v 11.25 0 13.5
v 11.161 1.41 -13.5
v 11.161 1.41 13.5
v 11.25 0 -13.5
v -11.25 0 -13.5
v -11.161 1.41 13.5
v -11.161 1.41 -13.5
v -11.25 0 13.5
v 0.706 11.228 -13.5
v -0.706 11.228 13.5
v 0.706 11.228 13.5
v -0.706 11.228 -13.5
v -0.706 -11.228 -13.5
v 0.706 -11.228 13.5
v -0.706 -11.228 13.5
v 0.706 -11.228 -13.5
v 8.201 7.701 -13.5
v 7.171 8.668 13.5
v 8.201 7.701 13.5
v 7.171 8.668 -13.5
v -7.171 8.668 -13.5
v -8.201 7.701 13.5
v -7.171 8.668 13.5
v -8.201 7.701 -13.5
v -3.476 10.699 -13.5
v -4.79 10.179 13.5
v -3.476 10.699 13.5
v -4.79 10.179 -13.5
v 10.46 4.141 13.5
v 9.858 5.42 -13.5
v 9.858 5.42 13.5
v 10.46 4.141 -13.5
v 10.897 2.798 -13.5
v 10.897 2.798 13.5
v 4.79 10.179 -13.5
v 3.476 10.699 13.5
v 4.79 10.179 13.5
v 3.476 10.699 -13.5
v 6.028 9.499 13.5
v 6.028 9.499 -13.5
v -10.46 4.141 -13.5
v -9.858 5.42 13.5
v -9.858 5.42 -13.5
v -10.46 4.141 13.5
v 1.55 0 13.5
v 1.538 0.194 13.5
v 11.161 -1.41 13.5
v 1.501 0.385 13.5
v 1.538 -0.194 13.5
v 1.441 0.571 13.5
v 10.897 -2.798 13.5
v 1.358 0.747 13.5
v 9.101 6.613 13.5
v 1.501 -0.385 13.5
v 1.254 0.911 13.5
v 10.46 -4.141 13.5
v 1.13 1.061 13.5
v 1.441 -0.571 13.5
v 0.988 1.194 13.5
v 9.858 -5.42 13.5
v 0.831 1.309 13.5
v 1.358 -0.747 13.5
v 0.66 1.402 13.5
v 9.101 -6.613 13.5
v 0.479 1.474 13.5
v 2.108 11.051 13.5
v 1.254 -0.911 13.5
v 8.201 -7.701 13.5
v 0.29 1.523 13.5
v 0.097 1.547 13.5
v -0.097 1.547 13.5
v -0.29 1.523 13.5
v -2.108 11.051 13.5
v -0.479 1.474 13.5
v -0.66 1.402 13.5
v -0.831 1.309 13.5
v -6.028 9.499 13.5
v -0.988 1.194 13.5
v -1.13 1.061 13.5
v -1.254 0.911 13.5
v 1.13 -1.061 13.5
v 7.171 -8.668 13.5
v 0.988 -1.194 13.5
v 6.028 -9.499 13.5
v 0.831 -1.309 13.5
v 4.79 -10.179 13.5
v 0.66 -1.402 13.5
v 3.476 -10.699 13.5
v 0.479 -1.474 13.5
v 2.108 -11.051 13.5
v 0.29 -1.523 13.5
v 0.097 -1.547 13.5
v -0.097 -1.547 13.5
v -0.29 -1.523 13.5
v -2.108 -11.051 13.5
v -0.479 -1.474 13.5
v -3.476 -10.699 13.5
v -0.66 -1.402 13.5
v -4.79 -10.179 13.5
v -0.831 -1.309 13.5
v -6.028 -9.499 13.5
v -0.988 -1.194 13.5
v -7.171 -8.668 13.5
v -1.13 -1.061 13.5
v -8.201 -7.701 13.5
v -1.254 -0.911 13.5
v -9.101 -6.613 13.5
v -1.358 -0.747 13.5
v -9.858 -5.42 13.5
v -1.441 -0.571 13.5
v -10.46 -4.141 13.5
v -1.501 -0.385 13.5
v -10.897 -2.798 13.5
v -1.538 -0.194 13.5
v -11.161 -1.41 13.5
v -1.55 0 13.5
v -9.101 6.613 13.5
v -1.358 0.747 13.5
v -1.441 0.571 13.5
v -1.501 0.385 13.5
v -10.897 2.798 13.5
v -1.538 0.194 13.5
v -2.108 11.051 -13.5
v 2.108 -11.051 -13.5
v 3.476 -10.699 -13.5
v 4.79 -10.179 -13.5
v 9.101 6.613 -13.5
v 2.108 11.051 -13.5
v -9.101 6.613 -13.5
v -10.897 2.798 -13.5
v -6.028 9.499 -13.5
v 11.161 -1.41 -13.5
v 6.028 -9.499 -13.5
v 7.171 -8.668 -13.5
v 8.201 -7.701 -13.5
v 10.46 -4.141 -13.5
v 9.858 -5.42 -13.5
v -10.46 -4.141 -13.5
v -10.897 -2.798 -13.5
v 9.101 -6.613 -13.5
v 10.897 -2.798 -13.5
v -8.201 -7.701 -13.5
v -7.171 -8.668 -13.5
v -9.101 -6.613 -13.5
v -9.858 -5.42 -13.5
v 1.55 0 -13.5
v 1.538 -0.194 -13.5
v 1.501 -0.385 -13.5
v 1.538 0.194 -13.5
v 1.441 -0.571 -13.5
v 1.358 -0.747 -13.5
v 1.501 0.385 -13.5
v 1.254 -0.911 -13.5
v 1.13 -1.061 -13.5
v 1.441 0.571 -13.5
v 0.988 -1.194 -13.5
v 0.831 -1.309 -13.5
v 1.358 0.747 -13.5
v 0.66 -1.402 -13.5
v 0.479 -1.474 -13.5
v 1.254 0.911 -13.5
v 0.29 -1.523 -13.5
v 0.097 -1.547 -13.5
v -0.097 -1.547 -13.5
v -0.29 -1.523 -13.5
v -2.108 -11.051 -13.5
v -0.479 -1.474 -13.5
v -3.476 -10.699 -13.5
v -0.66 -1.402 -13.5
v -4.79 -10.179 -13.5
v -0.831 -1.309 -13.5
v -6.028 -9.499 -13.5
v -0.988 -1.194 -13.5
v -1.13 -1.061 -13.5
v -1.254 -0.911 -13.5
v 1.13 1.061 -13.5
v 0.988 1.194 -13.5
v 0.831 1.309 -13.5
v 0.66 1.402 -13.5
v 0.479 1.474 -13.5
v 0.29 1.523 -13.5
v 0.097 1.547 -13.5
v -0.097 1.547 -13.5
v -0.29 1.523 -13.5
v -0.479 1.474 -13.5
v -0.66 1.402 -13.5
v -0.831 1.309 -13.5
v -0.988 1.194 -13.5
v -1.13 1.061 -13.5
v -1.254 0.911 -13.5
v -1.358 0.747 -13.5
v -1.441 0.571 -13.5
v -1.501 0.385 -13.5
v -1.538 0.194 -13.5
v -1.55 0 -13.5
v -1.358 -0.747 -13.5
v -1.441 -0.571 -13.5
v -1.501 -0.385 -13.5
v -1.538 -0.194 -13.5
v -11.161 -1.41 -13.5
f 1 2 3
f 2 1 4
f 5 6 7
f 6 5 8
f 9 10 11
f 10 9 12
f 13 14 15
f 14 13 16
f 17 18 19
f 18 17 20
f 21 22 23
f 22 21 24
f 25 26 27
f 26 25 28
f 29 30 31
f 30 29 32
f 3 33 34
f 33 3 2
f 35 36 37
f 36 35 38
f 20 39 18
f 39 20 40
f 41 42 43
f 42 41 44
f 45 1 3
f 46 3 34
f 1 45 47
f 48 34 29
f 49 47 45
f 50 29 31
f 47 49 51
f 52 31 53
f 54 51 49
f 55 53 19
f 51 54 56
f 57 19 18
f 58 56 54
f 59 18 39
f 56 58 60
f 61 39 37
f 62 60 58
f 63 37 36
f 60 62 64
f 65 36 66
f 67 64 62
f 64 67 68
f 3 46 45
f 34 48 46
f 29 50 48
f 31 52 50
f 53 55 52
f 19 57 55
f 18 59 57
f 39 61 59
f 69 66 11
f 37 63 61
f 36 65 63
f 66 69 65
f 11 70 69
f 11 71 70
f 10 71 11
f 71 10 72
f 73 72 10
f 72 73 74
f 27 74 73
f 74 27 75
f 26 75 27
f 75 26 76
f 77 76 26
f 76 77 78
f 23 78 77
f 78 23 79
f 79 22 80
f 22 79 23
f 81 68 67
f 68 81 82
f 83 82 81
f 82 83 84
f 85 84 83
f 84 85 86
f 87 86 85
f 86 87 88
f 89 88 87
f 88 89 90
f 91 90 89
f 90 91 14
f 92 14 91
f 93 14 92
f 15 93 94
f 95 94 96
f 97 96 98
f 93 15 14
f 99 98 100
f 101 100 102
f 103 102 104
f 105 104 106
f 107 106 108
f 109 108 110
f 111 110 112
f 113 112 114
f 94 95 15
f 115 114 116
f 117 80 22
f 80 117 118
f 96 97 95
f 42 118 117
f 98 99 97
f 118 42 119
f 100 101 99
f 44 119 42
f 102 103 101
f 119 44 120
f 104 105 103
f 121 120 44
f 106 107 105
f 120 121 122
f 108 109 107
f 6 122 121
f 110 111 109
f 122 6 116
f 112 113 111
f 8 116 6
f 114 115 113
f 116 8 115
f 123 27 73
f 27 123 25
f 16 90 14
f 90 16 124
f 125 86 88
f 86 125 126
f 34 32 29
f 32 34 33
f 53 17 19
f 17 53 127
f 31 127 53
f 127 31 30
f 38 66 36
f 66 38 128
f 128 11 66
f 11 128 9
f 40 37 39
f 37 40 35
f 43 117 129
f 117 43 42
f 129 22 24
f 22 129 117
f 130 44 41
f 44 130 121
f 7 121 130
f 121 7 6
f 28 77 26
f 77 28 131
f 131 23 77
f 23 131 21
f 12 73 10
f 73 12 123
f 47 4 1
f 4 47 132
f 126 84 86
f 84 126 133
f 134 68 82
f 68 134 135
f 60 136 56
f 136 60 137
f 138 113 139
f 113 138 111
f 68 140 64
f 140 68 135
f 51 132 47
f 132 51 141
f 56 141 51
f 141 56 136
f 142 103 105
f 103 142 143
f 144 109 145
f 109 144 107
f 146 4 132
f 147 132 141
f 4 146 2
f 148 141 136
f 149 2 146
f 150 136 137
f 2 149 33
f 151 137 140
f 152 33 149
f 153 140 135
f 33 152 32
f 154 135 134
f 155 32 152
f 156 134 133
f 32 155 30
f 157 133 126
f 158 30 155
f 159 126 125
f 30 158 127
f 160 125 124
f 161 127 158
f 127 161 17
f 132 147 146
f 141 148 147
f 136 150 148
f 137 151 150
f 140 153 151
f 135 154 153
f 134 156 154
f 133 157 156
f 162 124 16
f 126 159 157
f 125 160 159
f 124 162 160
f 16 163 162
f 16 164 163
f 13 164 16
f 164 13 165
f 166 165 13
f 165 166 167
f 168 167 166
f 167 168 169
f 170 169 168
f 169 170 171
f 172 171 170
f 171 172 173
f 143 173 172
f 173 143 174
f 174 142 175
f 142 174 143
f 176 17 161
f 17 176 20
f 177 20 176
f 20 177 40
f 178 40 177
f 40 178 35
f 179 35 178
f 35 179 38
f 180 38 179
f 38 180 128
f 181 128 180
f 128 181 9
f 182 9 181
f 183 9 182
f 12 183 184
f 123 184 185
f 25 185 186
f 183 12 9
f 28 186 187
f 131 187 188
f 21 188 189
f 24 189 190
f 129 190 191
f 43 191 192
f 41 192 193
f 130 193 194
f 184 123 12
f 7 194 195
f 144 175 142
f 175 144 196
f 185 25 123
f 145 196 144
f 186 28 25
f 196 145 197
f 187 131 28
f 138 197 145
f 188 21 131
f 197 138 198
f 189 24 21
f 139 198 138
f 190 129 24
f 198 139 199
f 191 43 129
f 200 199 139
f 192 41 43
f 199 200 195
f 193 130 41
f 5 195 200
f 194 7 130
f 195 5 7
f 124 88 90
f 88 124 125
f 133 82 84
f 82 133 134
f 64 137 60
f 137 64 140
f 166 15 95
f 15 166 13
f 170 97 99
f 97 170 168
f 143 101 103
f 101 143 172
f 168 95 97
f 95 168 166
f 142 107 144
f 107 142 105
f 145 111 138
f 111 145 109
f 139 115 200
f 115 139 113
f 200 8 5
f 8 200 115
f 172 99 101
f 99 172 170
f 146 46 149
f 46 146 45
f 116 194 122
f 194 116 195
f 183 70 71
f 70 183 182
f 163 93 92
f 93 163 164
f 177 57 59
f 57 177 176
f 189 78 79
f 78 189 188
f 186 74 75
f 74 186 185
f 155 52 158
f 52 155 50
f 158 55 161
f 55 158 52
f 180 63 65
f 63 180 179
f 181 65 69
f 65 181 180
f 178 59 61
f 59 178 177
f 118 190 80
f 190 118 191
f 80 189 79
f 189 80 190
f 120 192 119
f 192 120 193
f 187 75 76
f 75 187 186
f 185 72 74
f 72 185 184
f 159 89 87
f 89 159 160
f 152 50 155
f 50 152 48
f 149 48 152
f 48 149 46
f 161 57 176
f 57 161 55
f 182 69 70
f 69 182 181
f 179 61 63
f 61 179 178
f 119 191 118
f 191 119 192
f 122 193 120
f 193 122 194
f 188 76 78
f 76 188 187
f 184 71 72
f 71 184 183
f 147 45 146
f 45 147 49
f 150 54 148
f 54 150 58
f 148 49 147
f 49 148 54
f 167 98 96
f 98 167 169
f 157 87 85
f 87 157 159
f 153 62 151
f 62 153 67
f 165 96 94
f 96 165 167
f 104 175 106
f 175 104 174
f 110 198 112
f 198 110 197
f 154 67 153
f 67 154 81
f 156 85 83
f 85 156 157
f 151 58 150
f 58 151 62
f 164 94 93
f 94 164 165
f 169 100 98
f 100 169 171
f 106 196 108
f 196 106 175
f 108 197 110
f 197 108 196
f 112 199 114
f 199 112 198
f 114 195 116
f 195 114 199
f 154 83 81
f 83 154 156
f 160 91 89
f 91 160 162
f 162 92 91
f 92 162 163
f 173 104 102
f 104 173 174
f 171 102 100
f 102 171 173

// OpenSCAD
$fn = 50;


difference() {
	union() {
		translate(v = [0, 0, -13.5000000000]) {
			cylinder(h = 27, r = 11.2500000000);
		}
	}
	union() {
		translate(v = [0, 0, -100.0000000000]) {
			cylinder(h = 200, r = 1.5500000000);
		}
	}
}
